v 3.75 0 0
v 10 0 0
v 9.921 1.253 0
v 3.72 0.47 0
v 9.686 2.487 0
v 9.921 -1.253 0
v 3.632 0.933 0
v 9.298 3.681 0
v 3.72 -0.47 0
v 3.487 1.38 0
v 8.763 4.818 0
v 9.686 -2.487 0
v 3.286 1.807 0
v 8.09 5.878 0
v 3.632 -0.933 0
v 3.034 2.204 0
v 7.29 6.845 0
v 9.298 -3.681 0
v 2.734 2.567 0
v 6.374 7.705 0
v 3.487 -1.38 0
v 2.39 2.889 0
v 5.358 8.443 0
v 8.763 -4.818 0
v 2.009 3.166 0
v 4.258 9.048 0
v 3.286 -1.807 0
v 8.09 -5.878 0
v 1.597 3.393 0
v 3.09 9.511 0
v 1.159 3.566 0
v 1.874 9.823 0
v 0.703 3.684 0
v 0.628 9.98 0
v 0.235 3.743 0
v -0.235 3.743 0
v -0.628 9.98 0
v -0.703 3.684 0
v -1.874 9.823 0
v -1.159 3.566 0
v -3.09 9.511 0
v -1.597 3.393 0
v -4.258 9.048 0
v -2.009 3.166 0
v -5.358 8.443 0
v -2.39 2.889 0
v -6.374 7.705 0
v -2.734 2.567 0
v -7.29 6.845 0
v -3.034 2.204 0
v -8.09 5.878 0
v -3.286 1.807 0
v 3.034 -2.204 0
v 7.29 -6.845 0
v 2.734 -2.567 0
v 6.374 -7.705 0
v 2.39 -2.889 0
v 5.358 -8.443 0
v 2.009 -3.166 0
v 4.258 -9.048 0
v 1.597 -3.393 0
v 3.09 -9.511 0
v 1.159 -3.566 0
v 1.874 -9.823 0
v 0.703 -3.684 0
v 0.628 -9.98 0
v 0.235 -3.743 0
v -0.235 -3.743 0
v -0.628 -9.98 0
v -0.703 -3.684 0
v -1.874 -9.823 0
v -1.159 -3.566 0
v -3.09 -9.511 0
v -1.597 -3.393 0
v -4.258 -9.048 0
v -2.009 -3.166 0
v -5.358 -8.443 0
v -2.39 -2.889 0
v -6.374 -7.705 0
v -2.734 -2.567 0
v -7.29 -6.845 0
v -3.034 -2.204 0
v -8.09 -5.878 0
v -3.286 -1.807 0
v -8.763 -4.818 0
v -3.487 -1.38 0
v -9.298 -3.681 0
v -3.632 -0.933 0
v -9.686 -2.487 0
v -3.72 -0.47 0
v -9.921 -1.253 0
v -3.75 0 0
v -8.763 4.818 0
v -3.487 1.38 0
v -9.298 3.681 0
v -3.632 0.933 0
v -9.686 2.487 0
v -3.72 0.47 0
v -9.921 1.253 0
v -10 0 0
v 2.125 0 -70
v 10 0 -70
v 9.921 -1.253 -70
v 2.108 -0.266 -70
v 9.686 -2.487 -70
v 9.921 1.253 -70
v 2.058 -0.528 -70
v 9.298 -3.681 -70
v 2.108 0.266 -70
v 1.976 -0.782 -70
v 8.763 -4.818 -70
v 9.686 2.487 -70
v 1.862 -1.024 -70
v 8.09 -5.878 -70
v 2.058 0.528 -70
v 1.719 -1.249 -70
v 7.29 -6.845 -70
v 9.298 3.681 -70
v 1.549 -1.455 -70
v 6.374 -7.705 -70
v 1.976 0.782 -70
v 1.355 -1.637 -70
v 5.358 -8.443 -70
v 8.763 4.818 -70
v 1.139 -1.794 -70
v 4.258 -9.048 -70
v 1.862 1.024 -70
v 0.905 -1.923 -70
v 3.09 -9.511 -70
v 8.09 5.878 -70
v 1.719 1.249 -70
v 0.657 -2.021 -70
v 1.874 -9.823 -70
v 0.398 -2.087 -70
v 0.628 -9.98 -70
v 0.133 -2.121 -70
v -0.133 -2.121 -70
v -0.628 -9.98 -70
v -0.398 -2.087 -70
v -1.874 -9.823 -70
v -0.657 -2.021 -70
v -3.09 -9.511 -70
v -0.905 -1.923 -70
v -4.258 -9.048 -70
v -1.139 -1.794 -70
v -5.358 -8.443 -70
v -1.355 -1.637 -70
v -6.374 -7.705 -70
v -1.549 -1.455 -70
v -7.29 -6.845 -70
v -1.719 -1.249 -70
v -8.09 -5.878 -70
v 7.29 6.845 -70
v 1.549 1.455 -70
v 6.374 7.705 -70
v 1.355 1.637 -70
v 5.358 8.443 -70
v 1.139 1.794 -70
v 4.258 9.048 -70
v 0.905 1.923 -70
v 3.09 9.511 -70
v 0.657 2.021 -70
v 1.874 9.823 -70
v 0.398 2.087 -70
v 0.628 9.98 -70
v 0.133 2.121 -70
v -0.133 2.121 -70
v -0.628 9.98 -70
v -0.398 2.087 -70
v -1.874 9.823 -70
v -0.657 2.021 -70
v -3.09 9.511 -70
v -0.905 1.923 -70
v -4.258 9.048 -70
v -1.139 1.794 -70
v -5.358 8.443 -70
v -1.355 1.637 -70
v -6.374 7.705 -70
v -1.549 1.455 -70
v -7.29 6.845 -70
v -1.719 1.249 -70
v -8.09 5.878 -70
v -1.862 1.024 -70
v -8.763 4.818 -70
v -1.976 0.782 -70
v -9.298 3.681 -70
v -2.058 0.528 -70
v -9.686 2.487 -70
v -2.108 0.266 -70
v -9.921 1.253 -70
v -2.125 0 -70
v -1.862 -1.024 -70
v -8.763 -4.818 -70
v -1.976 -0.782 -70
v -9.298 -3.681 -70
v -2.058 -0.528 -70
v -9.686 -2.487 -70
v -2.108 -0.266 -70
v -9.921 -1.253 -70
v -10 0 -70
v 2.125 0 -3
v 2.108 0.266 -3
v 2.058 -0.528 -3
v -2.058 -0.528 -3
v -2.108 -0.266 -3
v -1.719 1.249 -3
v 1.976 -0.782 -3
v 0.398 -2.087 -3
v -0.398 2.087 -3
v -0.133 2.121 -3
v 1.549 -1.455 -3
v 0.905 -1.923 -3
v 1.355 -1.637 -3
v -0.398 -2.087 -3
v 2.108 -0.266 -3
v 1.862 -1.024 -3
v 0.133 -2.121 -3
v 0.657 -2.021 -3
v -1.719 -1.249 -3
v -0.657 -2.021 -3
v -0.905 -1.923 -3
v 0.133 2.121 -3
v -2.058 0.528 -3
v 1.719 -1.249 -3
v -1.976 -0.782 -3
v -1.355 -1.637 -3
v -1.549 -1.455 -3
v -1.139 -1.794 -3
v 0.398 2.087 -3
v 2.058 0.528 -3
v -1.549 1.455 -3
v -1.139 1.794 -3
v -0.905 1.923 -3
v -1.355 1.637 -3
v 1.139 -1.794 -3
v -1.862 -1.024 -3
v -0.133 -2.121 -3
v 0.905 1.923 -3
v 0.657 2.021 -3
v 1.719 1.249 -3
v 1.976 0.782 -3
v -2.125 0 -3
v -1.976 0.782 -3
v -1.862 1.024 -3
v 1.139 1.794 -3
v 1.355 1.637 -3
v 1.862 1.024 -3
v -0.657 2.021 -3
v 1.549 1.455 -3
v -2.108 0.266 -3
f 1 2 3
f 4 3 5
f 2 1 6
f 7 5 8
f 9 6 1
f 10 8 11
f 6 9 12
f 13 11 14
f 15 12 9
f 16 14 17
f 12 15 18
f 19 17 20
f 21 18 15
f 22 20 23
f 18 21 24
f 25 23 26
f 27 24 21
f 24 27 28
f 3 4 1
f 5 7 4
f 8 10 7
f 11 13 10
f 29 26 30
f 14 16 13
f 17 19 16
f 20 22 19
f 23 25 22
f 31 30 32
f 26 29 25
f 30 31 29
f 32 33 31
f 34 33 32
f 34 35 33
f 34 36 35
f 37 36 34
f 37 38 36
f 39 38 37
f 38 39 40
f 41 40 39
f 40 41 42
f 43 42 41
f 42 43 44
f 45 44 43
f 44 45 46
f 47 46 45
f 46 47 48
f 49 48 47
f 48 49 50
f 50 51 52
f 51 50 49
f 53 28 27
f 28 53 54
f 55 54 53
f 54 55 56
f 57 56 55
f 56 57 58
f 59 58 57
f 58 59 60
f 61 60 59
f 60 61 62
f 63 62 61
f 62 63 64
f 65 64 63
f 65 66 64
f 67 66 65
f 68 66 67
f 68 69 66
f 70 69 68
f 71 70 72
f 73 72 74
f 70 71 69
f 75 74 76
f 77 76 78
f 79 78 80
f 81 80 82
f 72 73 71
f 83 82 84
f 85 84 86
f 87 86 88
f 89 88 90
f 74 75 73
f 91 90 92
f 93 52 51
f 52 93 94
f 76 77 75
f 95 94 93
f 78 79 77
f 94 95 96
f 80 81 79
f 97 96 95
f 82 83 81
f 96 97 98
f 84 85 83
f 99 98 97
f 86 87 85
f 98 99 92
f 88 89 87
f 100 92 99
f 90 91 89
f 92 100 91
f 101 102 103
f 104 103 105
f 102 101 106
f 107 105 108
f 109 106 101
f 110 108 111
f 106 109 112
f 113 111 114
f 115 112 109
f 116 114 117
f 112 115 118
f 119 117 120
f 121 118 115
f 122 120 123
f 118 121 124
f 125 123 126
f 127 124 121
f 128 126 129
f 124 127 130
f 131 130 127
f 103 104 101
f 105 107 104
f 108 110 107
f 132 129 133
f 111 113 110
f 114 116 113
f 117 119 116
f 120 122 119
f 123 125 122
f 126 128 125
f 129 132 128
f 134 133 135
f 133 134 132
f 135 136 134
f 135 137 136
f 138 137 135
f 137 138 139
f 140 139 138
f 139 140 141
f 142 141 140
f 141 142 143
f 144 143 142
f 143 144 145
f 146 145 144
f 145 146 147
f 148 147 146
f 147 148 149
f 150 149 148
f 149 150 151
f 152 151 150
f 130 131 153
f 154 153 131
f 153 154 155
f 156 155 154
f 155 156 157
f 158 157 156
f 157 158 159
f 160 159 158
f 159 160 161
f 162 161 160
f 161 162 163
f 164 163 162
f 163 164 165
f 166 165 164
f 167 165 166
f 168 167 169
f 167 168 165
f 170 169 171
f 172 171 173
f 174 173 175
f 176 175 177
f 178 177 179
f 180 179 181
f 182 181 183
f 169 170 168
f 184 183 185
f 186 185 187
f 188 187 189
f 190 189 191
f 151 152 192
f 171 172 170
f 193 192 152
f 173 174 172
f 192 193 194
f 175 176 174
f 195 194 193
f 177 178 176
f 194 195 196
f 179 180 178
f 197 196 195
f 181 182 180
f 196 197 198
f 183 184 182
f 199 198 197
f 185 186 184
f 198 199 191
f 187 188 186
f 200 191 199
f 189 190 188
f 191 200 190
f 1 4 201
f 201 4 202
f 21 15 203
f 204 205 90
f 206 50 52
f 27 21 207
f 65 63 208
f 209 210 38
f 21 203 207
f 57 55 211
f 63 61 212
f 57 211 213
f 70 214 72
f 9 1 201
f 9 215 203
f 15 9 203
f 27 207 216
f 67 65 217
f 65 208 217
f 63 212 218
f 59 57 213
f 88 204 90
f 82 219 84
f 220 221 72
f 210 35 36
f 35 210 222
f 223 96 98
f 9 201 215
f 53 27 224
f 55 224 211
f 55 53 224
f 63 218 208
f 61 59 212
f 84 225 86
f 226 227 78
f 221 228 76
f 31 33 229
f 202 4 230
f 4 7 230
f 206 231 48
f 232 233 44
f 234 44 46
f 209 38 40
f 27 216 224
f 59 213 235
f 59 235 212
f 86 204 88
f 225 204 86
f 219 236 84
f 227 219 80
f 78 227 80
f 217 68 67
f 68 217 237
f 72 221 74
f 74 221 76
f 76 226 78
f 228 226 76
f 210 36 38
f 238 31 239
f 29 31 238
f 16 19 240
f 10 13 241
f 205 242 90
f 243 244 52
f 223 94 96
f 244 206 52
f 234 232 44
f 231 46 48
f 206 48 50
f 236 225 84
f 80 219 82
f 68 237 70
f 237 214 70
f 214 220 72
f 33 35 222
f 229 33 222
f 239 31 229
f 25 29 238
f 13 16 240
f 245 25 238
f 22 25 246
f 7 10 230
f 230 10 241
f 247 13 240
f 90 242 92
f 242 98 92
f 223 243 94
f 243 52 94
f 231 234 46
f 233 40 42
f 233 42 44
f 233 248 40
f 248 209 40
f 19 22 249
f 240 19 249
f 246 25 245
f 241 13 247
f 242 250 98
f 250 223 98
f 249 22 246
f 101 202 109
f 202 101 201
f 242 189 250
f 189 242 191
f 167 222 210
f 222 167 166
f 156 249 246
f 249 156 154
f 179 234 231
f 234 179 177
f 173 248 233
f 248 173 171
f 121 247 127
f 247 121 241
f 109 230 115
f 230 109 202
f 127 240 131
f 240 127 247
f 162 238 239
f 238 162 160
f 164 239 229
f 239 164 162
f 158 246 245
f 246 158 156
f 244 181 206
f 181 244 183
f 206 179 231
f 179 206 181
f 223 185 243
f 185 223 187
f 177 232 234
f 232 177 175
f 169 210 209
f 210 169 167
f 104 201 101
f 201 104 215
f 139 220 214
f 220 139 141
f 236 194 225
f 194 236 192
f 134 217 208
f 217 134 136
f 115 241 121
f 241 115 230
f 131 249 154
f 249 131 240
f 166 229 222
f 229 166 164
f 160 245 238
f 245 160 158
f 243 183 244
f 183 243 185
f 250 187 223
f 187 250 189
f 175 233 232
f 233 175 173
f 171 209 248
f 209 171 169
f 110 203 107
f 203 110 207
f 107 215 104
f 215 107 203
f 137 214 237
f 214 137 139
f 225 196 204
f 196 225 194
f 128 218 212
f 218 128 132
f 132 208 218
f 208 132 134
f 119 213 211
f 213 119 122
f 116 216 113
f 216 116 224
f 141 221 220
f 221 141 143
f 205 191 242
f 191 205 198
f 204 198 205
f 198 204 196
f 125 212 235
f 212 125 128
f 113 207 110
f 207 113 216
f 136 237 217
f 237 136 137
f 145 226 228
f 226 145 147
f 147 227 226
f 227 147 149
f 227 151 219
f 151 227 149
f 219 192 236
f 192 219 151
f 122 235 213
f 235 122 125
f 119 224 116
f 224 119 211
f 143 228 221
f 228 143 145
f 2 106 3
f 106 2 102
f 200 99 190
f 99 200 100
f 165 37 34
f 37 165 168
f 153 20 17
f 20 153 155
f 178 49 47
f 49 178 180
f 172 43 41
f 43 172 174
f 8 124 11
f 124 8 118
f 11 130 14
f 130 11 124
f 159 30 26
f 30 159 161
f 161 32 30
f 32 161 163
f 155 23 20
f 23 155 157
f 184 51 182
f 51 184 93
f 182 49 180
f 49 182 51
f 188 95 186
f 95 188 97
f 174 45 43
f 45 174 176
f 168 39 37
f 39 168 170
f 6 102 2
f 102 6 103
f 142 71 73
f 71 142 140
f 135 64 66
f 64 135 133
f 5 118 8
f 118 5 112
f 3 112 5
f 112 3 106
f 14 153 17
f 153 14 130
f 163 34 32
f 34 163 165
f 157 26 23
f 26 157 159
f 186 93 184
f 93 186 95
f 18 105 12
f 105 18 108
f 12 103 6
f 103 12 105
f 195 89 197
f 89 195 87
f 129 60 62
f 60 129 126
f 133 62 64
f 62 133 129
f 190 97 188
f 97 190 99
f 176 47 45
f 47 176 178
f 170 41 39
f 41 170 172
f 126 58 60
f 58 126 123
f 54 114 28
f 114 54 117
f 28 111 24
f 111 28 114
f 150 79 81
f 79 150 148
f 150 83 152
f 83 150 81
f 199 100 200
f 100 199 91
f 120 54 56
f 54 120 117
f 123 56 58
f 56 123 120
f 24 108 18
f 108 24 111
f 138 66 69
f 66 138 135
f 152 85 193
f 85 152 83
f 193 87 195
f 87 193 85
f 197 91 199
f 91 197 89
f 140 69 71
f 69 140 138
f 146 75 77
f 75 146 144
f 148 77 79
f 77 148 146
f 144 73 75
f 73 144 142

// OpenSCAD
$fn = 50;


difference() {
	union() {
		translate(v = [0, 0, -70.0000000000]) {
			cylinder(h = 70, r = 10.0000000000);
		}
		cylinder(h = 0, r = 19.0000000000);
	}
	union() {
		translate(v = [0, 0, 0]) {
			rotate(a = [0, 0, 0]) {
				difference() {
					union() {
						#translate(v = [0, 0, -70.0000000000]) {
							cylinder(h = 70, r = 2.0000000000);
						}
						#translate(v = [0, 0, -3]) {
							cylinder(h = 3, r = 10.0000000000, r1 = 2.1250000000, r2 = 3.7500000000);
						}
						#translate(v = [0, 0, -70.0000000000]) {
							cylinder(h = 70, r = 2.1250000000);
						}
						#translate(v = [0, 0, -70.0000000000]) {
							cylinder(h = 70, r = 2.0000000000);
						}
					}
					union();
				}
			}
		}
	}
}
